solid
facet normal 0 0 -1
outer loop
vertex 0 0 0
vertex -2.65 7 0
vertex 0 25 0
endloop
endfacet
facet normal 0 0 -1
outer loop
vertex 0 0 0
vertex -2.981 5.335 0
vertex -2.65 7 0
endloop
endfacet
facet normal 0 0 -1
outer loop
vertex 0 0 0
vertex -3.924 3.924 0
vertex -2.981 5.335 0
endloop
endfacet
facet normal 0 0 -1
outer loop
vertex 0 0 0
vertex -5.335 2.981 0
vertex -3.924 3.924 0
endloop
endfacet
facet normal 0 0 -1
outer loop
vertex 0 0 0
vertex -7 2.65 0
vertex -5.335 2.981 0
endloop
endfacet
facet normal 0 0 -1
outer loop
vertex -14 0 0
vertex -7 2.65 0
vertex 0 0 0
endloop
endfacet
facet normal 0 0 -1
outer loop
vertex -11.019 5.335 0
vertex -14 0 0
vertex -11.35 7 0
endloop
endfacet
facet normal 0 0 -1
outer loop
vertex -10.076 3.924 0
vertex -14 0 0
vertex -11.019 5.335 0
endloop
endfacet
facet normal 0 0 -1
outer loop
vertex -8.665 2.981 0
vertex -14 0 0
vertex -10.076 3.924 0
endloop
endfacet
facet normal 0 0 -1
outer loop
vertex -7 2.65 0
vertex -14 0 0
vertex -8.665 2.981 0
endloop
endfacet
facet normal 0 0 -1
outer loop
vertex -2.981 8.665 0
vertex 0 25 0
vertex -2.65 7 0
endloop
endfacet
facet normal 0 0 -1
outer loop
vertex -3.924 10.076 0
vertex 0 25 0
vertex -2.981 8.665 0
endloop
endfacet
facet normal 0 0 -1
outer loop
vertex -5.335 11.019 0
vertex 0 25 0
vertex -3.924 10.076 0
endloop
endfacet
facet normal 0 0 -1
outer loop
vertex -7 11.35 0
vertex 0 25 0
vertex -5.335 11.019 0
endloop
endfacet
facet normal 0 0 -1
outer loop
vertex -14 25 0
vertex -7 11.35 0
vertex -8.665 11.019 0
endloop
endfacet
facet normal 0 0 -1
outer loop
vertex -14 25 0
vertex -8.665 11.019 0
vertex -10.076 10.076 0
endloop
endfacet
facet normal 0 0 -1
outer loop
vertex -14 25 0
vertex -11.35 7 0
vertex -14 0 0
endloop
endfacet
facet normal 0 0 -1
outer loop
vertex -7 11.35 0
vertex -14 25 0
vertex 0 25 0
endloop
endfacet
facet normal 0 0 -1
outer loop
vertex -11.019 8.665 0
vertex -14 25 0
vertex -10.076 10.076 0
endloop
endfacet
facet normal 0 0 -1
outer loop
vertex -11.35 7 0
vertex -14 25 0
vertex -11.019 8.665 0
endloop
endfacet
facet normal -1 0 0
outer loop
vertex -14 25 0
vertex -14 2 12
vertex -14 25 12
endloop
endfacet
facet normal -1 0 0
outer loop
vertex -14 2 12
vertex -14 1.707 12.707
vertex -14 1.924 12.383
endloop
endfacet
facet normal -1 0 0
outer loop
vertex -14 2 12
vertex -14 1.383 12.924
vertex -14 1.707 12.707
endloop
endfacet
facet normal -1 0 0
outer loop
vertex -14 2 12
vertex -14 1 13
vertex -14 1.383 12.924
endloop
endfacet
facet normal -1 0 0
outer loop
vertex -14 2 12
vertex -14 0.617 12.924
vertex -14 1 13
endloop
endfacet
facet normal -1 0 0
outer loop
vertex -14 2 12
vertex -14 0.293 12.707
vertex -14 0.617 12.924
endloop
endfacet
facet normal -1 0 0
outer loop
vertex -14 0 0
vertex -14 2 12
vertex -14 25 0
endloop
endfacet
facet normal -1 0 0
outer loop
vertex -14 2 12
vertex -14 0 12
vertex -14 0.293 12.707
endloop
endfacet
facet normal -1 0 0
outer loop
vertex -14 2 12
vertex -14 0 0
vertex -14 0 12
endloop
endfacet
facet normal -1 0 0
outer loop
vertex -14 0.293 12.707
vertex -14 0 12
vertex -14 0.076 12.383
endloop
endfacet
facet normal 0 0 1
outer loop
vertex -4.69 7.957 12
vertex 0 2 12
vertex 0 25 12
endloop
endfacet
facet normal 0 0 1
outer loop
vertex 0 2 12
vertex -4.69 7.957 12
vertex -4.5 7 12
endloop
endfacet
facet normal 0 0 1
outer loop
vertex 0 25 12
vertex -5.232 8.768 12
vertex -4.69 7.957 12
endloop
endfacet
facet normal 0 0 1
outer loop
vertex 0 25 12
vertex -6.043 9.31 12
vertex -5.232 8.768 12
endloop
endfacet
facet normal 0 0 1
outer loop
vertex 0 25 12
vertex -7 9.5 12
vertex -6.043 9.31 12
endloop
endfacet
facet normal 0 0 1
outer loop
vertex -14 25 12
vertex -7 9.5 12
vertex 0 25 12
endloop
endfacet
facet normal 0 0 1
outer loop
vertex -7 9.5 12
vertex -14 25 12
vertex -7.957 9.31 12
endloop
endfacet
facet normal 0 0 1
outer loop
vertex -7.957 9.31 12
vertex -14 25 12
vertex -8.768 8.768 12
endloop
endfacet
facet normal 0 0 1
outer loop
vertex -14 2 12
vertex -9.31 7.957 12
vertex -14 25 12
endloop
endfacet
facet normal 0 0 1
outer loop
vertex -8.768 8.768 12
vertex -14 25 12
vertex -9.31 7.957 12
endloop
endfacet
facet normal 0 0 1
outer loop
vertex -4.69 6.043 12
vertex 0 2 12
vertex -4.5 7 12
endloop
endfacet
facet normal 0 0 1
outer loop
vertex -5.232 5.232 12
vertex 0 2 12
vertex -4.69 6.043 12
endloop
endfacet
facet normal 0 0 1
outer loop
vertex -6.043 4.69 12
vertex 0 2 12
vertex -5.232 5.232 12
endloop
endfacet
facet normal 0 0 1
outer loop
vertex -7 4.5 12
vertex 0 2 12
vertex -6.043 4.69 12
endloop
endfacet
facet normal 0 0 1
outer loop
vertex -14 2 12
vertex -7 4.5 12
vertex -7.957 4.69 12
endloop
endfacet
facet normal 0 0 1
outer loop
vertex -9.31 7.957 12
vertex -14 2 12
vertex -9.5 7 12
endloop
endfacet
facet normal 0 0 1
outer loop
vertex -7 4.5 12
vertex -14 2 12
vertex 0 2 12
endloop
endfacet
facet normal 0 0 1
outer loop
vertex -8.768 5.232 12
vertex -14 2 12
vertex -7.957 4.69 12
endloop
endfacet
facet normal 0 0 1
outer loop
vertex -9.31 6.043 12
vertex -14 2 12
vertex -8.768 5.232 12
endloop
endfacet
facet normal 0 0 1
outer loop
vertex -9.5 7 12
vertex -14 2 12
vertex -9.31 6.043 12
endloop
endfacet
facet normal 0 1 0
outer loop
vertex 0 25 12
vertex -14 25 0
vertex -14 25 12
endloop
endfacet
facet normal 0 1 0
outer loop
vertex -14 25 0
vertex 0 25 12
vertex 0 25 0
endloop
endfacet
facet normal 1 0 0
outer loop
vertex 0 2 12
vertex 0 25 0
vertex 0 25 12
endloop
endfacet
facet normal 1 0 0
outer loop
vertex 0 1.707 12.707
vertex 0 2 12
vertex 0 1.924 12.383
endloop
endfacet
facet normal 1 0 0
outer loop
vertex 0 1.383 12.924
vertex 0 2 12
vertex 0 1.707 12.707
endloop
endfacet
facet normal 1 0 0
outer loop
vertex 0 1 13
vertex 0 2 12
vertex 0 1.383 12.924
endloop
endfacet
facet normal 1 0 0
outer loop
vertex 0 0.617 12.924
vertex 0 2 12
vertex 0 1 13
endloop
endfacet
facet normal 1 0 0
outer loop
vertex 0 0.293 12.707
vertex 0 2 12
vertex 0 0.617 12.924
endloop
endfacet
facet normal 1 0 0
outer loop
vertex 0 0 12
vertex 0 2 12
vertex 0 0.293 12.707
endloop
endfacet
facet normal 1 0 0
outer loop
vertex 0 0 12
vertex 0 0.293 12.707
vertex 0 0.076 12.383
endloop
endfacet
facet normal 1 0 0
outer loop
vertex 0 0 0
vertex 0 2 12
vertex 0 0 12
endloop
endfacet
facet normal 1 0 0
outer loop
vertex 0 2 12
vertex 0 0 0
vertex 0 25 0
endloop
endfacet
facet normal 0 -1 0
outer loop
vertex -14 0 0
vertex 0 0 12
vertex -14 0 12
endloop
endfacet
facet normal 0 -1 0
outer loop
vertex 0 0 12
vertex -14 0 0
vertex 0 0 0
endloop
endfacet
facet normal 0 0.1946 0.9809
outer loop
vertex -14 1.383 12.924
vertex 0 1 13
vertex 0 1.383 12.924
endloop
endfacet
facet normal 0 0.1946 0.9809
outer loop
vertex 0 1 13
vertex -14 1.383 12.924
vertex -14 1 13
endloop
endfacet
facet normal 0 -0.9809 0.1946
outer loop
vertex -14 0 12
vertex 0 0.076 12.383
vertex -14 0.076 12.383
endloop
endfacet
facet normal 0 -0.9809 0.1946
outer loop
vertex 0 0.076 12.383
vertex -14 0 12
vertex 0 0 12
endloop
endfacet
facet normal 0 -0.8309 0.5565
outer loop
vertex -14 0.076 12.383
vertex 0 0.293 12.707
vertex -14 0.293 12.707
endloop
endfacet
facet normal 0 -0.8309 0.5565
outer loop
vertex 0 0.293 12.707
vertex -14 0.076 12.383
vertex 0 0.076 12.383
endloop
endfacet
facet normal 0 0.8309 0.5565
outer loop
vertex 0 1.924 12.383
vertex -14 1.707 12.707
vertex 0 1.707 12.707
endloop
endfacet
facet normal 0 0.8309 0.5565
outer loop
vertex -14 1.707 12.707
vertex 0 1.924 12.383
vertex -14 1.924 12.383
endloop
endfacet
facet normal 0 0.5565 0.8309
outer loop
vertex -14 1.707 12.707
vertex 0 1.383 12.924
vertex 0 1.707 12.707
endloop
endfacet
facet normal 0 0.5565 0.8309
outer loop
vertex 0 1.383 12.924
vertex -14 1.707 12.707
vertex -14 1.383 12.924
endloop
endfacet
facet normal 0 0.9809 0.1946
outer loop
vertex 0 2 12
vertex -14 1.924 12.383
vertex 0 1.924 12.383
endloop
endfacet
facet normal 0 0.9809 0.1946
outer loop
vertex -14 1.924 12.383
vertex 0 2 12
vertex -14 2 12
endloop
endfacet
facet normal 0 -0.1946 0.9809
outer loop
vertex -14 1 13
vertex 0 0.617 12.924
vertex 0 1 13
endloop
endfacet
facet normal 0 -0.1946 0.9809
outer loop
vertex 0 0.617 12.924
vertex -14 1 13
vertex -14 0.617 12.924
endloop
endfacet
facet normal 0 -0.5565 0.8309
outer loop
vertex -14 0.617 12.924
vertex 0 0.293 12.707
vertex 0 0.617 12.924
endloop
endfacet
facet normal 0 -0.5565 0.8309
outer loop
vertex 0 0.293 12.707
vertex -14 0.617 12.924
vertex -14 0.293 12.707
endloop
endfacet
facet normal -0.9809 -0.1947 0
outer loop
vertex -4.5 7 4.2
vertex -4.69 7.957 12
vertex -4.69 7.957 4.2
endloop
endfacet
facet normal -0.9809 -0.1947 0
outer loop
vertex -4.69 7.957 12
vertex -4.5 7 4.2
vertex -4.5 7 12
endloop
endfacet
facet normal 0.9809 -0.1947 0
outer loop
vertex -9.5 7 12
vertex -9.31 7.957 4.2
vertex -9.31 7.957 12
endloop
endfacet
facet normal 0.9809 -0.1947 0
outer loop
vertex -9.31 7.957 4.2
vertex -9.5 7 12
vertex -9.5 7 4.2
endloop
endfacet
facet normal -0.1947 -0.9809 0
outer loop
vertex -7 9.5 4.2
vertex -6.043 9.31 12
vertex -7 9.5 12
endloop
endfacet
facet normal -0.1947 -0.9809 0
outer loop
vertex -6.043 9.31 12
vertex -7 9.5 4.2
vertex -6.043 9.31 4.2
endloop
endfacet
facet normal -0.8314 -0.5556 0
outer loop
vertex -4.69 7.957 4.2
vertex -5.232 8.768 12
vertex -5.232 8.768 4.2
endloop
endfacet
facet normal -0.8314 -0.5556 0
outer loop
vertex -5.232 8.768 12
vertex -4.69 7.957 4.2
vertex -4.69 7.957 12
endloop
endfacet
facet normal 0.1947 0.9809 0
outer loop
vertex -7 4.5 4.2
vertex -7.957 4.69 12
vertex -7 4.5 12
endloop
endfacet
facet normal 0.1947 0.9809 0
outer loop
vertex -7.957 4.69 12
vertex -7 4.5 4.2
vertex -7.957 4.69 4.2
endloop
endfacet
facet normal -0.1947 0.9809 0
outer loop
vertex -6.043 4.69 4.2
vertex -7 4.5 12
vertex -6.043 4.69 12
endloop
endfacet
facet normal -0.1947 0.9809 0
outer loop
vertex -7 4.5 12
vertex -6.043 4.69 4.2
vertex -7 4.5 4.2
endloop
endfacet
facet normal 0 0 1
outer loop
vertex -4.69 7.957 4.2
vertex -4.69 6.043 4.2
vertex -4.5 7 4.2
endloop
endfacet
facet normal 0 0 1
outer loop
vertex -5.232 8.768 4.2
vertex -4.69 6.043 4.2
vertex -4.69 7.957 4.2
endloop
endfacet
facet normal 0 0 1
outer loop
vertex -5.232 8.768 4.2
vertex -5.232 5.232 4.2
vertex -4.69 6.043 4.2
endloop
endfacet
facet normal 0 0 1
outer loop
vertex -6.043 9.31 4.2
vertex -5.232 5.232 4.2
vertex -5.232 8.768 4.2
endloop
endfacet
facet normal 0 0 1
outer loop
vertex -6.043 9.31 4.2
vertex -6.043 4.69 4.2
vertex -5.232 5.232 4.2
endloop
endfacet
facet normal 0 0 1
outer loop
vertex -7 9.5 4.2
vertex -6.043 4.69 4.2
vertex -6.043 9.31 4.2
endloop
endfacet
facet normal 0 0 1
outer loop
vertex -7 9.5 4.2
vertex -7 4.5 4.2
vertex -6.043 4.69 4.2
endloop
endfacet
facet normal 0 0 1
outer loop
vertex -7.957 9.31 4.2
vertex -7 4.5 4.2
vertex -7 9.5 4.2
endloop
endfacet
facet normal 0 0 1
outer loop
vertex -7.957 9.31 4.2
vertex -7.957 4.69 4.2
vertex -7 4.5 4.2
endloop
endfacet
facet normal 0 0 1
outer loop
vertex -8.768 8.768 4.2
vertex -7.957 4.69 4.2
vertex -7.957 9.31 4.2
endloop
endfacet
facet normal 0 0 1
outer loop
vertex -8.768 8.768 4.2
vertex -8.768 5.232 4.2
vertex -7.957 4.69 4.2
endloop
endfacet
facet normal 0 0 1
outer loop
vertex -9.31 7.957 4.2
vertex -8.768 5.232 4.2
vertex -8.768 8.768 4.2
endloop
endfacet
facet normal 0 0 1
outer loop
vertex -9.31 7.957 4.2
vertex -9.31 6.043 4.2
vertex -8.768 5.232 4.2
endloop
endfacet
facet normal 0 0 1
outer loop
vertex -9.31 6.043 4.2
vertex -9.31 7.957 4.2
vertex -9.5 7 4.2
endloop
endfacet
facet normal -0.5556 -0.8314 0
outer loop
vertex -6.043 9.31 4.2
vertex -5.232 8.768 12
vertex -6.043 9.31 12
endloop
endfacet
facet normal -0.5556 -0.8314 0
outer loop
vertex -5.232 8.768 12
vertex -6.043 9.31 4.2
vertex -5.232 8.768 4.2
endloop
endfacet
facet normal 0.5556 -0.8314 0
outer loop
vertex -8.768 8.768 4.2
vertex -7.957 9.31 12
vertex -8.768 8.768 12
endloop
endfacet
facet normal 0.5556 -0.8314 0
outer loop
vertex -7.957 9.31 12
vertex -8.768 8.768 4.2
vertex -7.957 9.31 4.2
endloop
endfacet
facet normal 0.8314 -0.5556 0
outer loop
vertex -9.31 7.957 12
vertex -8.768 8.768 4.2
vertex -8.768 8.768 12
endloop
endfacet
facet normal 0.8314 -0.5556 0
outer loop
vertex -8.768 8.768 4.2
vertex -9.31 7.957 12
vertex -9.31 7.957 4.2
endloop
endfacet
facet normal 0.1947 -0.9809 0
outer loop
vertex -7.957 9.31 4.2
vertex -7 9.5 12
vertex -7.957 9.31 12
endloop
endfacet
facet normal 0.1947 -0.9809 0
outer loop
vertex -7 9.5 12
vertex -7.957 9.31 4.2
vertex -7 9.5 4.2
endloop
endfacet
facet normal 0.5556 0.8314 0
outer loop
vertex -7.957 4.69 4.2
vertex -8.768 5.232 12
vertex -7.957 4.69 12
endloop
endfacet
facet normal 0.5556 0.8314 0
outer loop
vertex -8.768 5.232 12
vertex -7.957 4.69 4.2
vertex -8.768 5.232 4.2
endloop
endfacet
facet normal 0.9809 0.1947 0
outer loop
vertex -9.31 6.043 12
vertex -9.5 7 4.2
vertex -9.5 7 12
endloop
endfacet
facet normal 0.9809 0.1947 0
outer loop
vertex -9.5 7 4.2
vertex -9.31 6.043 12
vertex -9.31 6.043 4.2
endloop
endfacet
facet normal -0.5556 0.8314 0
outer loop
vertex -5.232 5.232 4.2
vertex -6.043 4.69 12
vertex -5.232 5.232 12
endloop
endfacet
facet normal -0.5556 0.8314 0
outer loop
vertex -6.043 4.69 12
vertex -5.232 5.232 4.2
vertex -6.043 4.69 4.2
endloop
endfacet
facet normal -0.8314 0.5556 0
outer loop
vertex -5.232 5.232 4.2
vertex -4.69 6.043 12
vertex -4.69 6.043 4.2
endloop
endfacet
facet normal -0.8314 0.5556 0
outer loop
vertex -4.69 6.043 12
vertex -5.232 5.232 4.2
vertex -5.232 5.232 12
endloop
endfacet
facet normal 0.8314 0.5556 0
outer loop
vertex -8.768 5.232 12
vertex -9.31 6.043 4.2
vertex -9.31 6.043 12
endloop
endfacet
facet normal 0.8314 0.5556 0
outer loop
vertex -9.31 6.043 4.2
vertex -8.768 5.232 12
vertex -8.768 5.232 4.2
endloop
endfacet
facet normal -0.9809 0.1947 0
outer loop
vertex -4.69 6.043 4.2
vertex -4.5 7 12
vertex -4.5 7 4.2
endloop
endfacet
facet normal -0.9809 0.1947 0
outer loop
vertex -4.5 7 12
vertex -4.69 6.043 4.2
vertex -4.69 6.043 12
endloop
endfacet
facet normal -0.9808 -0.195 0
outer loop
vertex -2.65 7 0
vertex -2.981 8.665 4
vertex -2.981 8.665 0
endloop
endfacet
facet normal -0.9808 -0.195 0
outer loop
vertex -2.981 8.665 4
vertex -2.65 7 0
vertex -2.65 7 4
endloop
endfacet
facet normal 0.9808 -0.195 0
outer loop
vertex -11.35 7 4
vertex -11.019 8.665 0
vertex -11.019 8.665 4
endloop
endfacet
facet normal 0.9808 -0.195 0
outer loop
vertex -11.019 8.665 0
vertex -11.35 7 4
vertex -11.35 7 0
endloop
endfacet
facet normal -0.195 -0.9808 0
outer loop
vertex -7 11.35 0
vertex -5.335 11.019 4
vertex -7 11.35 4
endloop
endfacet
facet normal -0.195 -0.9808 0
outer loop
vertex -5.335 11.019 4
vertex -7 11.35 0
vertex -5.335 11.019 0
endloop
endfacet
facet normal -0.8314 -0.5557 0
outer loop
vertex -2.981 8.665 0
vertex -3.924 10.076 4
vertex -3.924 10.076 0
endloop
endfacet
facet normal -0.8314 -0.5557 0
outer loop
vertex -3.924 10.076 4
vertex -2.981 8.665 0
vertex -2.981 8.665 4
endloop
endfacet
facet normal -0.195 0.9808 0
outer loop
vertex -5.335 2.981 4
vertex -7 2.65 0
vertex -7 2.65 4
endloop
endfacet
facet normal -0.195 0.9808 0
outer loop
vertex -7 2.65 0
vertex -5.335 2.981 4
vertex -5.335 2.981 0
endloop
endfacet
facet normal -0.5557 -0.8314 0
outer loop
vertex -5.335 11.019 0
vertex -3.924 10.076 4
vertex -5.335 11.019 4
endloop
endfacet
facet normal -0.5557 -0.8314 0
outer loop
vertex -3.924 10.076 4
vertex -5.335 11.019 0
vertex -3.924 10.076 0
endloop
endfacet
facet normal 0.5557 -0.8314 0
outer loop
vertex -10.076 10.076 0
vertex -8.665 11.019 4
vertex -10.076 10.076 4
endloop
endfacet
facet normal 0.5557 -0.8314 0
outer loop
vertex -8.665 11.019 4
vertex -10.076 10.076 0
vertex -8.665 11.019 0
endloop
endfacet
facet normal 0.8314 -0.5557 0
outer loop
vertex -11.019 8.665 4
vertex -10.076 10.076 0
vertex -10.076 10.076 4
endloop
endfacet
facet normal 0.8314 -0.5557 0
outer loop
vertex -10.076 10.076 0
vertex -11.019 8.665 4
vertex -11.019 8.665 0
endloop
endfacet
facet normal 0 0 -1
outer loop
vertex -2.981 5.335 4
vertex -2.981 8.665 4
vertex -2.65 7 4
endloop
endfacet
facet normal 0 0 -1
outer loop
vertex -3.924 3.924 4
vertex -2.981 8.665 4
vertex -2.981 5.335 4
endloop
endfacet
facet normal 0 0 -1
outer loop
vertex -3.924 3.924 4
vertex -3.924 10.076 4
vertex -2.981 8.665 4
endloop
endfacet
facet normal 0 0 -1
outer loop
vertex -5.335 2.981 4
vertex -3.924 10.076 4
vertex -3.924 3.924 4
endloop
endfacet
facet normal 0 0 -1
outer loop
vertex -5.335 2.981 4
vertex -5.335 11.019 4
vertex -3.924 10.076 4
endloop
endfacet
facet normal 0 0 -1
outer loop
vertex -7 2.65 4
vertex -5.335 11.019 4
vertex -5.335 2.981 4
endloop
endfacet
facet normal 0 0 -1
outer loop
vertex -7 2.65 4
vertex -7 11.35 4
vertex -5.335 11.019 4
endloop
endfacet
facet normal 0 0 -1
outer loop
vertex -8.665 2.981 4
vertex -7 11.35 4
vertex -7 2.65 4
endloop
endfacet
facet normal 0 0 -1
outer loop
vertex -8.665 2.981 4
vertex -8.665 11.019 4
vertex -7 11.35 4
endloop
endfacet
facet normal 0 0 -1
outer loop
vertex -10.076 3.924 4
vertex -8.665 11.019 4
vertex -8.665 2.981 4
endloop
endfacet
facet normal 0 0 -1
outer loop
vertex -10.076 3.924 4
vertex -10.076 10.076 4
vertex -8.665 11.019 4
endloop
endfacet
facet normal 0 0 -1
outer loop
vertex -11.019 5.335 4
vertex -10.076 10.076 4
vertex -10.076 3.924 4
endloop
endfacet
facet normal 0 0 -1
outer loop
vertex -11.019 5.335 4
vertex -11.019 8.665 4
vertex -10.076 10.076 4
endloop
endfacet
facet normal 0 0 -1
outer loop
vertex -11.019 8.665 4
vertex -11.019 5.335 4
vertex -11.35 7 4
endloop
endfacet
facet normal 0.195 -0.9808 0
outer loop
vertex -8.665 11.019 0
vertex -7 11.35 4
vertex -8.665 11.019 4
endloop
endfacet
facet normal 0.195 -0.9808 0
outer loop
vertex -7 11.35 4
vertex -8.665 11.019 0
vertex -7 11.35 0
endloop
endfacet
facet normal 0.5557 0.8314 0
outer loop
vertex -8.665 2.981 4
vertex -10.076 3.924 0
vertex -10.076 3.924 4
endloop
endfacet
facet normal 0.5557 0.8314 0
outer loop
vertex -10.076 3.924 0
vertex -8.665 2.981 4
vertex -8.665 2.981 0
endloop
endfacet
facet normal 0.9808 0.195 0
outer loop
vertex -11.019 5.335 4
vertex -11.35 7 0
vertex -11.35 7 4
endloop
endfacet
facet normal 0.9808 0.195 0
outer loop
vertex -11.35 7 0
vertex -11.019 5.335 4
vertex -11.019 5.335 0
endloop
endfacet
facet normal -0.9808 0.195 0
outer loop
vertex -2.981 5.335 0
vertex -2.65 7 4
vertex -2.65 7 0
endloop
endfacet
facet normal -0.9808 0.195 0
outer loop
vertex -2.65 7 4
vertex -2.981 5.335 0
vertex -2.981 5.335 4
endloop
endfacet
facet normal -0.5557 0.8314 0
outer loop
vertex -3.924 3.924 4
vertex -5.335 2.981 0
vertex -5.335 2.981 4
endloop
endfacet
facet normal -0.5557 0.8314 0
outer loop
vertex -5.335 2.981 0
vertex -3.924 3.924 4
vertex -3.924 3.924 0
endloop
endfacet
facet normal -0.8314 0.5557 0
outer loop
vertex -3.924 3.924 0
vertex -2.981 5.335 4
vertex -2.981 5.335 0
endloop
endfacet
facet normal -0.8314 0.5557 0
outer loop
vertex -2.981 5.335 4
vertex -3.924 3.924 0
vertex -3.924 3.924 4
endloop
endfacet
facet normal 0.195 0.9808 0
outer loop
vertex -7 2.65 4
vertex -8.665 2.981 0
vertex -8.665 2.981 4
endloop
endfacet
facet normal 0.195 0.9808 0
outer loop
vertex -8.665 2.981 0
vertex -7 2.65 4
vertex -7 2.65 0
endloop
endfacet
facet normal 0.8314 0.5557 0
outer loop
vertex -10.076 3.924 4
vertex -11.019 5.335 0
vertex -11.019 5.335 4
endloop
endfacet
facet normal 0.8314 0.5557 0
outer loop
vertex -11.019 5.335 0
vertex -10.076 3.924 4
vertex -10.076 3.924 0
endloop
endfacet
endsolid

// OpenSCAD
rotate([0, -90, 0]) {
  difference() {
    union() {
      cube([12, 25, 14]);
      translate([12, 1, 0]) {
        cylinder(d=2, h=14, $fn=16);
      }
    }
    translate([-1, 7, 7]) {
      rotate([0, 90, 0]) {
        translate([0, 0, 5.2]) {
          cylinder(d=5, h=14, $fn=16);
        }
        cylinder(d=8.7, h=5, $fn=16);
      }
    }
  }
}
